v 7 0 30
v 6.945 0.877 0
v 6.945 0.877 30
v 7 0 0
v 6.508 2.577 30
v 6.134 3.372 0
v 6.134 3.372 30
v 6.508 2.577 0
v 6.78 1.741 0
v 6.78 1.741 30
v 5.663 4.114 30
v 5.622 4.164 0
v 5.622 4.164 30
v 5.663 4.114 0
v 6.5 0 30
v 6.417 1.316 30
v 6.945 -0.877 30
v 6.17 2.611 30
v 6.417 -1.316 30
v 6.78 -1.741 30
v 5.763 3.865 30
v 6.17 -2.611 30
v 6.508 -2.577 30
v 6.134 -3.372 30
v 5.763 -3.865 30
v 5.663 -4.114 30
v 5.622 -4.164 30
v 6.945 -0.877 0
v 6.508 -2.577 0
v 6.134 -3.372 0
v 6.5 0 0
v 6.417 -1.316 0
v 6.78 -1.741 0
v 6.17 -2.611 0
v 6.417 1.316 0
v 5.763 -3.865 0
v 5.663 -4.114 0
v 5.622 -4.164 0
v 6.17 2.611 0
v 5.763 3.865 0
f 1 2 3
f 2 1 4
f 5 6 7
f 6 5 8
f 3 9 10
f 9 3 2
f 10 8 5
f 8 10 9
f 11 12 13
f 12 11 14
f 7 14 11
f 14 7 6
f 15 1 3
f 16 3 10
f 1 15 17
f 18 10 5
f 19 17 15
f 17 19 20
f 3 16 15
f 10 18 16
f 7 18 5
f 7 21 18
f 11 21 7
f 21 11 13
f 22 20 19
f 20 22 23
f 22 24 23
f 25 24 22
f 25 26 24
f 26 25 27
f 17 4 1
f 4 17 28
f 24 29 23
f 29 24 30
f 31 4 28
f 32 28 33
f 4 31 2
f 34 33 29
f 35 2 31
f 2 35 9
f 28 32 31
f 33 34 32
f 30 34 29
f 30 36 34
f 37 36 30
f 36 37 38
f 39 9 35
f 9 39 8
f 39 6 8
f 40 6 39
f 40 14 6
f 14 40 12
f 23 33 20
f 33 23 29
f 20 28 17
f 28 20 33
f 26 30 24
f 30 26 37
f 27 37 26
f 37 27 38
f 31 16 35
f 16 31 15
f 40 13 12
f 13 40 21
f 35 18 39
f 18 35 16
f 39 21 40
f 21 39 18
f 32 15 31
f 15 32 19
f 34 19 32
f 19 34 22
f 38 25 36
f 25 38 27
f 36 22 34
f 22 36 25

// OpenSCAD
$fn = 50;


difference() {
	union() {
		cylinder(h = 30, r = 7.0000000000);
		translate(v = [-7.0000000000, 0, 0]) {
			cylinder(h = 30, r = 7.0000000000);
		}
	}
	union() {
		cylinder(h = 30, r = 3.2500000000);
		cylinder(h = 30, r = 1.8000000000);
		cylinder(h = 30, r = 1.8000000000);
		cylinder(h = 30, r = 1.8000000000);
		translate(v = [-11.5000000000, 0, 0]) {
			hull() {
				translate(v = [-3.7500000000, 0.0000000000, 0]) {
					cylinder(h = 30, r = 7.5000000000);
				}
				translate(v = [3.7500000000, 0.0000000000, 0]) {
					cylinder(h = 30, r = 7.5000000000);
				}
				translate(v = [-3.7500000000, -0.0000000000, 0]) {
					cylinder(h = 30, r = 7.5000000000);
				}
				translate(v = [3.7500000000, -0.0000000000, 0]) {
					cylinder(h = 30, r = 7.5000000000);
				}
			}
		}
		translate(v = [-4.0000000000, 0, 0.0000000000]) {
			cylinder(h = 30, r = 10.5000000000);
		}
	}
}
